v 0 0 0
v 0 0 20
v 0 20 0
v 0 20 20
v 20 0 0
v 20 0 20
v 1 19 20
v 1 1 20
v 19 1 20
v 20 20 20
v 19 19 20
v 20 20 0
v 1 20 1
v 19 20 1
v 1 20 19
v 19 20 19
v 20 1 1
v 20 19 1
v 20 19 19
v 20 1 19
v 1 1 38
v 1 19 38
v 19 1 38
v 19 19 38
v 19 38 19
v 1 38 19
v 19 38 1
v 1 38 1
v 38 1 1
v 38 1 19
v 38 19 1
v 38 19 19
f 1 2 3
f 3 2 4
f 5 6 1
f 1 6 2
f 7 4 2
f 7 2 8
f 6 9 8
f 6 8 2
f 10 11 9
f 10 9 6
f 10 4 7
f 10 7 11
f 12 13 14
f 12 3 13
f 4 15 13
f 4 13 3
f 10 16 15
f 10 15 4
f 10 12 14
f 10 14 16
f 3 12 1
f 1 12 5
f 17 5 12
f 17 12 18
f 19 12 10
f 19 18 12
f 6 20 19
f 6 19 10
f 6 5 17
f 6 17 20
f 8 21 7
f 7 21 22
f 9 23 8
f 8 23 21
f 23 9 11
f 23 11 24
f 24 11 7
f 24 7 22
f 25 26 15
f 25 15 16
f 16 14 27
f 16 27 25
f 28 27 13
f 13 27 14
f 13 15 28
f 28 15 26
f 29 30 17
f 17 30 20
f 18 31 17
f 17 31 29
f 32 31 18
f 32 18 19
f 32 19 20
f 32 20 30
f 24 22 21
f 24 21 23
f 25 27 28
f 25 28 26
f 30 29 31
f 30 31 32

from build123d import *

# Parameters (mm, degrees)
BOX003_W     = 18
BOX003_H     = 18
BOX003_DEPTH = 18
BOX002_W     = 18
BOX002_H     = 18
BOX002_DEPTH = 18
BOX001_W     = 18
BOX001_H     = 18
BOX001_DEPTH = 18
BOX_W        = 20
BOX_H        = 20
BOX_DEPTH    = 20


with BuildPart() as z:
    # Box003 → Box003 (new body)
    with BuildSketch(Plane(origin=(1, 1, 20), x_dir=(1, 0, 0), z_dir=(0, 0, 1))):
        with Locations((9, 9)):
            Rectangle(BOX003_W, BOX003_H)
    extrude(amount=BOX003_DEPTH)


with BuildPart() as y:
    # Box002 → Box002 (new body)
    with BuildSketch(Plane(origin=(1, 20, 1), x_dir=(1, 0, 0), z_dir=(0, 0, 1))):
        with Locations((9, 9)):
            Rectangle(BOX002_W, BOX002_H)
    extrude(amount=BOX002_DEPTH)


with BuildPart() as x:
    # Box001 → Box001 (new body)
    with BuildSketch(Plane(origin=(20, 1, 1), x_dir=(1, 0, 0), z_dir=(0, 0, 1))):
        with Locations((9, 9)):
            Rectangle(BOX001_W, BOX001_H)
    extrude(amount=BOX001_DEPTH)


with BuildPart() as unionxyz:
    # Box → Box (new body)
    with BuildSketch(Plane.XY):
        with Locations((10, 10)):
            Rectangle(BOX_W, BOX_H)
    extrude(amount=BOX_DEPTH)

    # Fusion: union X
    add(x.part)

    # Fusion001: union Y
    add(y.part)

    # Fusion002: union Z
    add(z.part)


solid = unionxyz.part
